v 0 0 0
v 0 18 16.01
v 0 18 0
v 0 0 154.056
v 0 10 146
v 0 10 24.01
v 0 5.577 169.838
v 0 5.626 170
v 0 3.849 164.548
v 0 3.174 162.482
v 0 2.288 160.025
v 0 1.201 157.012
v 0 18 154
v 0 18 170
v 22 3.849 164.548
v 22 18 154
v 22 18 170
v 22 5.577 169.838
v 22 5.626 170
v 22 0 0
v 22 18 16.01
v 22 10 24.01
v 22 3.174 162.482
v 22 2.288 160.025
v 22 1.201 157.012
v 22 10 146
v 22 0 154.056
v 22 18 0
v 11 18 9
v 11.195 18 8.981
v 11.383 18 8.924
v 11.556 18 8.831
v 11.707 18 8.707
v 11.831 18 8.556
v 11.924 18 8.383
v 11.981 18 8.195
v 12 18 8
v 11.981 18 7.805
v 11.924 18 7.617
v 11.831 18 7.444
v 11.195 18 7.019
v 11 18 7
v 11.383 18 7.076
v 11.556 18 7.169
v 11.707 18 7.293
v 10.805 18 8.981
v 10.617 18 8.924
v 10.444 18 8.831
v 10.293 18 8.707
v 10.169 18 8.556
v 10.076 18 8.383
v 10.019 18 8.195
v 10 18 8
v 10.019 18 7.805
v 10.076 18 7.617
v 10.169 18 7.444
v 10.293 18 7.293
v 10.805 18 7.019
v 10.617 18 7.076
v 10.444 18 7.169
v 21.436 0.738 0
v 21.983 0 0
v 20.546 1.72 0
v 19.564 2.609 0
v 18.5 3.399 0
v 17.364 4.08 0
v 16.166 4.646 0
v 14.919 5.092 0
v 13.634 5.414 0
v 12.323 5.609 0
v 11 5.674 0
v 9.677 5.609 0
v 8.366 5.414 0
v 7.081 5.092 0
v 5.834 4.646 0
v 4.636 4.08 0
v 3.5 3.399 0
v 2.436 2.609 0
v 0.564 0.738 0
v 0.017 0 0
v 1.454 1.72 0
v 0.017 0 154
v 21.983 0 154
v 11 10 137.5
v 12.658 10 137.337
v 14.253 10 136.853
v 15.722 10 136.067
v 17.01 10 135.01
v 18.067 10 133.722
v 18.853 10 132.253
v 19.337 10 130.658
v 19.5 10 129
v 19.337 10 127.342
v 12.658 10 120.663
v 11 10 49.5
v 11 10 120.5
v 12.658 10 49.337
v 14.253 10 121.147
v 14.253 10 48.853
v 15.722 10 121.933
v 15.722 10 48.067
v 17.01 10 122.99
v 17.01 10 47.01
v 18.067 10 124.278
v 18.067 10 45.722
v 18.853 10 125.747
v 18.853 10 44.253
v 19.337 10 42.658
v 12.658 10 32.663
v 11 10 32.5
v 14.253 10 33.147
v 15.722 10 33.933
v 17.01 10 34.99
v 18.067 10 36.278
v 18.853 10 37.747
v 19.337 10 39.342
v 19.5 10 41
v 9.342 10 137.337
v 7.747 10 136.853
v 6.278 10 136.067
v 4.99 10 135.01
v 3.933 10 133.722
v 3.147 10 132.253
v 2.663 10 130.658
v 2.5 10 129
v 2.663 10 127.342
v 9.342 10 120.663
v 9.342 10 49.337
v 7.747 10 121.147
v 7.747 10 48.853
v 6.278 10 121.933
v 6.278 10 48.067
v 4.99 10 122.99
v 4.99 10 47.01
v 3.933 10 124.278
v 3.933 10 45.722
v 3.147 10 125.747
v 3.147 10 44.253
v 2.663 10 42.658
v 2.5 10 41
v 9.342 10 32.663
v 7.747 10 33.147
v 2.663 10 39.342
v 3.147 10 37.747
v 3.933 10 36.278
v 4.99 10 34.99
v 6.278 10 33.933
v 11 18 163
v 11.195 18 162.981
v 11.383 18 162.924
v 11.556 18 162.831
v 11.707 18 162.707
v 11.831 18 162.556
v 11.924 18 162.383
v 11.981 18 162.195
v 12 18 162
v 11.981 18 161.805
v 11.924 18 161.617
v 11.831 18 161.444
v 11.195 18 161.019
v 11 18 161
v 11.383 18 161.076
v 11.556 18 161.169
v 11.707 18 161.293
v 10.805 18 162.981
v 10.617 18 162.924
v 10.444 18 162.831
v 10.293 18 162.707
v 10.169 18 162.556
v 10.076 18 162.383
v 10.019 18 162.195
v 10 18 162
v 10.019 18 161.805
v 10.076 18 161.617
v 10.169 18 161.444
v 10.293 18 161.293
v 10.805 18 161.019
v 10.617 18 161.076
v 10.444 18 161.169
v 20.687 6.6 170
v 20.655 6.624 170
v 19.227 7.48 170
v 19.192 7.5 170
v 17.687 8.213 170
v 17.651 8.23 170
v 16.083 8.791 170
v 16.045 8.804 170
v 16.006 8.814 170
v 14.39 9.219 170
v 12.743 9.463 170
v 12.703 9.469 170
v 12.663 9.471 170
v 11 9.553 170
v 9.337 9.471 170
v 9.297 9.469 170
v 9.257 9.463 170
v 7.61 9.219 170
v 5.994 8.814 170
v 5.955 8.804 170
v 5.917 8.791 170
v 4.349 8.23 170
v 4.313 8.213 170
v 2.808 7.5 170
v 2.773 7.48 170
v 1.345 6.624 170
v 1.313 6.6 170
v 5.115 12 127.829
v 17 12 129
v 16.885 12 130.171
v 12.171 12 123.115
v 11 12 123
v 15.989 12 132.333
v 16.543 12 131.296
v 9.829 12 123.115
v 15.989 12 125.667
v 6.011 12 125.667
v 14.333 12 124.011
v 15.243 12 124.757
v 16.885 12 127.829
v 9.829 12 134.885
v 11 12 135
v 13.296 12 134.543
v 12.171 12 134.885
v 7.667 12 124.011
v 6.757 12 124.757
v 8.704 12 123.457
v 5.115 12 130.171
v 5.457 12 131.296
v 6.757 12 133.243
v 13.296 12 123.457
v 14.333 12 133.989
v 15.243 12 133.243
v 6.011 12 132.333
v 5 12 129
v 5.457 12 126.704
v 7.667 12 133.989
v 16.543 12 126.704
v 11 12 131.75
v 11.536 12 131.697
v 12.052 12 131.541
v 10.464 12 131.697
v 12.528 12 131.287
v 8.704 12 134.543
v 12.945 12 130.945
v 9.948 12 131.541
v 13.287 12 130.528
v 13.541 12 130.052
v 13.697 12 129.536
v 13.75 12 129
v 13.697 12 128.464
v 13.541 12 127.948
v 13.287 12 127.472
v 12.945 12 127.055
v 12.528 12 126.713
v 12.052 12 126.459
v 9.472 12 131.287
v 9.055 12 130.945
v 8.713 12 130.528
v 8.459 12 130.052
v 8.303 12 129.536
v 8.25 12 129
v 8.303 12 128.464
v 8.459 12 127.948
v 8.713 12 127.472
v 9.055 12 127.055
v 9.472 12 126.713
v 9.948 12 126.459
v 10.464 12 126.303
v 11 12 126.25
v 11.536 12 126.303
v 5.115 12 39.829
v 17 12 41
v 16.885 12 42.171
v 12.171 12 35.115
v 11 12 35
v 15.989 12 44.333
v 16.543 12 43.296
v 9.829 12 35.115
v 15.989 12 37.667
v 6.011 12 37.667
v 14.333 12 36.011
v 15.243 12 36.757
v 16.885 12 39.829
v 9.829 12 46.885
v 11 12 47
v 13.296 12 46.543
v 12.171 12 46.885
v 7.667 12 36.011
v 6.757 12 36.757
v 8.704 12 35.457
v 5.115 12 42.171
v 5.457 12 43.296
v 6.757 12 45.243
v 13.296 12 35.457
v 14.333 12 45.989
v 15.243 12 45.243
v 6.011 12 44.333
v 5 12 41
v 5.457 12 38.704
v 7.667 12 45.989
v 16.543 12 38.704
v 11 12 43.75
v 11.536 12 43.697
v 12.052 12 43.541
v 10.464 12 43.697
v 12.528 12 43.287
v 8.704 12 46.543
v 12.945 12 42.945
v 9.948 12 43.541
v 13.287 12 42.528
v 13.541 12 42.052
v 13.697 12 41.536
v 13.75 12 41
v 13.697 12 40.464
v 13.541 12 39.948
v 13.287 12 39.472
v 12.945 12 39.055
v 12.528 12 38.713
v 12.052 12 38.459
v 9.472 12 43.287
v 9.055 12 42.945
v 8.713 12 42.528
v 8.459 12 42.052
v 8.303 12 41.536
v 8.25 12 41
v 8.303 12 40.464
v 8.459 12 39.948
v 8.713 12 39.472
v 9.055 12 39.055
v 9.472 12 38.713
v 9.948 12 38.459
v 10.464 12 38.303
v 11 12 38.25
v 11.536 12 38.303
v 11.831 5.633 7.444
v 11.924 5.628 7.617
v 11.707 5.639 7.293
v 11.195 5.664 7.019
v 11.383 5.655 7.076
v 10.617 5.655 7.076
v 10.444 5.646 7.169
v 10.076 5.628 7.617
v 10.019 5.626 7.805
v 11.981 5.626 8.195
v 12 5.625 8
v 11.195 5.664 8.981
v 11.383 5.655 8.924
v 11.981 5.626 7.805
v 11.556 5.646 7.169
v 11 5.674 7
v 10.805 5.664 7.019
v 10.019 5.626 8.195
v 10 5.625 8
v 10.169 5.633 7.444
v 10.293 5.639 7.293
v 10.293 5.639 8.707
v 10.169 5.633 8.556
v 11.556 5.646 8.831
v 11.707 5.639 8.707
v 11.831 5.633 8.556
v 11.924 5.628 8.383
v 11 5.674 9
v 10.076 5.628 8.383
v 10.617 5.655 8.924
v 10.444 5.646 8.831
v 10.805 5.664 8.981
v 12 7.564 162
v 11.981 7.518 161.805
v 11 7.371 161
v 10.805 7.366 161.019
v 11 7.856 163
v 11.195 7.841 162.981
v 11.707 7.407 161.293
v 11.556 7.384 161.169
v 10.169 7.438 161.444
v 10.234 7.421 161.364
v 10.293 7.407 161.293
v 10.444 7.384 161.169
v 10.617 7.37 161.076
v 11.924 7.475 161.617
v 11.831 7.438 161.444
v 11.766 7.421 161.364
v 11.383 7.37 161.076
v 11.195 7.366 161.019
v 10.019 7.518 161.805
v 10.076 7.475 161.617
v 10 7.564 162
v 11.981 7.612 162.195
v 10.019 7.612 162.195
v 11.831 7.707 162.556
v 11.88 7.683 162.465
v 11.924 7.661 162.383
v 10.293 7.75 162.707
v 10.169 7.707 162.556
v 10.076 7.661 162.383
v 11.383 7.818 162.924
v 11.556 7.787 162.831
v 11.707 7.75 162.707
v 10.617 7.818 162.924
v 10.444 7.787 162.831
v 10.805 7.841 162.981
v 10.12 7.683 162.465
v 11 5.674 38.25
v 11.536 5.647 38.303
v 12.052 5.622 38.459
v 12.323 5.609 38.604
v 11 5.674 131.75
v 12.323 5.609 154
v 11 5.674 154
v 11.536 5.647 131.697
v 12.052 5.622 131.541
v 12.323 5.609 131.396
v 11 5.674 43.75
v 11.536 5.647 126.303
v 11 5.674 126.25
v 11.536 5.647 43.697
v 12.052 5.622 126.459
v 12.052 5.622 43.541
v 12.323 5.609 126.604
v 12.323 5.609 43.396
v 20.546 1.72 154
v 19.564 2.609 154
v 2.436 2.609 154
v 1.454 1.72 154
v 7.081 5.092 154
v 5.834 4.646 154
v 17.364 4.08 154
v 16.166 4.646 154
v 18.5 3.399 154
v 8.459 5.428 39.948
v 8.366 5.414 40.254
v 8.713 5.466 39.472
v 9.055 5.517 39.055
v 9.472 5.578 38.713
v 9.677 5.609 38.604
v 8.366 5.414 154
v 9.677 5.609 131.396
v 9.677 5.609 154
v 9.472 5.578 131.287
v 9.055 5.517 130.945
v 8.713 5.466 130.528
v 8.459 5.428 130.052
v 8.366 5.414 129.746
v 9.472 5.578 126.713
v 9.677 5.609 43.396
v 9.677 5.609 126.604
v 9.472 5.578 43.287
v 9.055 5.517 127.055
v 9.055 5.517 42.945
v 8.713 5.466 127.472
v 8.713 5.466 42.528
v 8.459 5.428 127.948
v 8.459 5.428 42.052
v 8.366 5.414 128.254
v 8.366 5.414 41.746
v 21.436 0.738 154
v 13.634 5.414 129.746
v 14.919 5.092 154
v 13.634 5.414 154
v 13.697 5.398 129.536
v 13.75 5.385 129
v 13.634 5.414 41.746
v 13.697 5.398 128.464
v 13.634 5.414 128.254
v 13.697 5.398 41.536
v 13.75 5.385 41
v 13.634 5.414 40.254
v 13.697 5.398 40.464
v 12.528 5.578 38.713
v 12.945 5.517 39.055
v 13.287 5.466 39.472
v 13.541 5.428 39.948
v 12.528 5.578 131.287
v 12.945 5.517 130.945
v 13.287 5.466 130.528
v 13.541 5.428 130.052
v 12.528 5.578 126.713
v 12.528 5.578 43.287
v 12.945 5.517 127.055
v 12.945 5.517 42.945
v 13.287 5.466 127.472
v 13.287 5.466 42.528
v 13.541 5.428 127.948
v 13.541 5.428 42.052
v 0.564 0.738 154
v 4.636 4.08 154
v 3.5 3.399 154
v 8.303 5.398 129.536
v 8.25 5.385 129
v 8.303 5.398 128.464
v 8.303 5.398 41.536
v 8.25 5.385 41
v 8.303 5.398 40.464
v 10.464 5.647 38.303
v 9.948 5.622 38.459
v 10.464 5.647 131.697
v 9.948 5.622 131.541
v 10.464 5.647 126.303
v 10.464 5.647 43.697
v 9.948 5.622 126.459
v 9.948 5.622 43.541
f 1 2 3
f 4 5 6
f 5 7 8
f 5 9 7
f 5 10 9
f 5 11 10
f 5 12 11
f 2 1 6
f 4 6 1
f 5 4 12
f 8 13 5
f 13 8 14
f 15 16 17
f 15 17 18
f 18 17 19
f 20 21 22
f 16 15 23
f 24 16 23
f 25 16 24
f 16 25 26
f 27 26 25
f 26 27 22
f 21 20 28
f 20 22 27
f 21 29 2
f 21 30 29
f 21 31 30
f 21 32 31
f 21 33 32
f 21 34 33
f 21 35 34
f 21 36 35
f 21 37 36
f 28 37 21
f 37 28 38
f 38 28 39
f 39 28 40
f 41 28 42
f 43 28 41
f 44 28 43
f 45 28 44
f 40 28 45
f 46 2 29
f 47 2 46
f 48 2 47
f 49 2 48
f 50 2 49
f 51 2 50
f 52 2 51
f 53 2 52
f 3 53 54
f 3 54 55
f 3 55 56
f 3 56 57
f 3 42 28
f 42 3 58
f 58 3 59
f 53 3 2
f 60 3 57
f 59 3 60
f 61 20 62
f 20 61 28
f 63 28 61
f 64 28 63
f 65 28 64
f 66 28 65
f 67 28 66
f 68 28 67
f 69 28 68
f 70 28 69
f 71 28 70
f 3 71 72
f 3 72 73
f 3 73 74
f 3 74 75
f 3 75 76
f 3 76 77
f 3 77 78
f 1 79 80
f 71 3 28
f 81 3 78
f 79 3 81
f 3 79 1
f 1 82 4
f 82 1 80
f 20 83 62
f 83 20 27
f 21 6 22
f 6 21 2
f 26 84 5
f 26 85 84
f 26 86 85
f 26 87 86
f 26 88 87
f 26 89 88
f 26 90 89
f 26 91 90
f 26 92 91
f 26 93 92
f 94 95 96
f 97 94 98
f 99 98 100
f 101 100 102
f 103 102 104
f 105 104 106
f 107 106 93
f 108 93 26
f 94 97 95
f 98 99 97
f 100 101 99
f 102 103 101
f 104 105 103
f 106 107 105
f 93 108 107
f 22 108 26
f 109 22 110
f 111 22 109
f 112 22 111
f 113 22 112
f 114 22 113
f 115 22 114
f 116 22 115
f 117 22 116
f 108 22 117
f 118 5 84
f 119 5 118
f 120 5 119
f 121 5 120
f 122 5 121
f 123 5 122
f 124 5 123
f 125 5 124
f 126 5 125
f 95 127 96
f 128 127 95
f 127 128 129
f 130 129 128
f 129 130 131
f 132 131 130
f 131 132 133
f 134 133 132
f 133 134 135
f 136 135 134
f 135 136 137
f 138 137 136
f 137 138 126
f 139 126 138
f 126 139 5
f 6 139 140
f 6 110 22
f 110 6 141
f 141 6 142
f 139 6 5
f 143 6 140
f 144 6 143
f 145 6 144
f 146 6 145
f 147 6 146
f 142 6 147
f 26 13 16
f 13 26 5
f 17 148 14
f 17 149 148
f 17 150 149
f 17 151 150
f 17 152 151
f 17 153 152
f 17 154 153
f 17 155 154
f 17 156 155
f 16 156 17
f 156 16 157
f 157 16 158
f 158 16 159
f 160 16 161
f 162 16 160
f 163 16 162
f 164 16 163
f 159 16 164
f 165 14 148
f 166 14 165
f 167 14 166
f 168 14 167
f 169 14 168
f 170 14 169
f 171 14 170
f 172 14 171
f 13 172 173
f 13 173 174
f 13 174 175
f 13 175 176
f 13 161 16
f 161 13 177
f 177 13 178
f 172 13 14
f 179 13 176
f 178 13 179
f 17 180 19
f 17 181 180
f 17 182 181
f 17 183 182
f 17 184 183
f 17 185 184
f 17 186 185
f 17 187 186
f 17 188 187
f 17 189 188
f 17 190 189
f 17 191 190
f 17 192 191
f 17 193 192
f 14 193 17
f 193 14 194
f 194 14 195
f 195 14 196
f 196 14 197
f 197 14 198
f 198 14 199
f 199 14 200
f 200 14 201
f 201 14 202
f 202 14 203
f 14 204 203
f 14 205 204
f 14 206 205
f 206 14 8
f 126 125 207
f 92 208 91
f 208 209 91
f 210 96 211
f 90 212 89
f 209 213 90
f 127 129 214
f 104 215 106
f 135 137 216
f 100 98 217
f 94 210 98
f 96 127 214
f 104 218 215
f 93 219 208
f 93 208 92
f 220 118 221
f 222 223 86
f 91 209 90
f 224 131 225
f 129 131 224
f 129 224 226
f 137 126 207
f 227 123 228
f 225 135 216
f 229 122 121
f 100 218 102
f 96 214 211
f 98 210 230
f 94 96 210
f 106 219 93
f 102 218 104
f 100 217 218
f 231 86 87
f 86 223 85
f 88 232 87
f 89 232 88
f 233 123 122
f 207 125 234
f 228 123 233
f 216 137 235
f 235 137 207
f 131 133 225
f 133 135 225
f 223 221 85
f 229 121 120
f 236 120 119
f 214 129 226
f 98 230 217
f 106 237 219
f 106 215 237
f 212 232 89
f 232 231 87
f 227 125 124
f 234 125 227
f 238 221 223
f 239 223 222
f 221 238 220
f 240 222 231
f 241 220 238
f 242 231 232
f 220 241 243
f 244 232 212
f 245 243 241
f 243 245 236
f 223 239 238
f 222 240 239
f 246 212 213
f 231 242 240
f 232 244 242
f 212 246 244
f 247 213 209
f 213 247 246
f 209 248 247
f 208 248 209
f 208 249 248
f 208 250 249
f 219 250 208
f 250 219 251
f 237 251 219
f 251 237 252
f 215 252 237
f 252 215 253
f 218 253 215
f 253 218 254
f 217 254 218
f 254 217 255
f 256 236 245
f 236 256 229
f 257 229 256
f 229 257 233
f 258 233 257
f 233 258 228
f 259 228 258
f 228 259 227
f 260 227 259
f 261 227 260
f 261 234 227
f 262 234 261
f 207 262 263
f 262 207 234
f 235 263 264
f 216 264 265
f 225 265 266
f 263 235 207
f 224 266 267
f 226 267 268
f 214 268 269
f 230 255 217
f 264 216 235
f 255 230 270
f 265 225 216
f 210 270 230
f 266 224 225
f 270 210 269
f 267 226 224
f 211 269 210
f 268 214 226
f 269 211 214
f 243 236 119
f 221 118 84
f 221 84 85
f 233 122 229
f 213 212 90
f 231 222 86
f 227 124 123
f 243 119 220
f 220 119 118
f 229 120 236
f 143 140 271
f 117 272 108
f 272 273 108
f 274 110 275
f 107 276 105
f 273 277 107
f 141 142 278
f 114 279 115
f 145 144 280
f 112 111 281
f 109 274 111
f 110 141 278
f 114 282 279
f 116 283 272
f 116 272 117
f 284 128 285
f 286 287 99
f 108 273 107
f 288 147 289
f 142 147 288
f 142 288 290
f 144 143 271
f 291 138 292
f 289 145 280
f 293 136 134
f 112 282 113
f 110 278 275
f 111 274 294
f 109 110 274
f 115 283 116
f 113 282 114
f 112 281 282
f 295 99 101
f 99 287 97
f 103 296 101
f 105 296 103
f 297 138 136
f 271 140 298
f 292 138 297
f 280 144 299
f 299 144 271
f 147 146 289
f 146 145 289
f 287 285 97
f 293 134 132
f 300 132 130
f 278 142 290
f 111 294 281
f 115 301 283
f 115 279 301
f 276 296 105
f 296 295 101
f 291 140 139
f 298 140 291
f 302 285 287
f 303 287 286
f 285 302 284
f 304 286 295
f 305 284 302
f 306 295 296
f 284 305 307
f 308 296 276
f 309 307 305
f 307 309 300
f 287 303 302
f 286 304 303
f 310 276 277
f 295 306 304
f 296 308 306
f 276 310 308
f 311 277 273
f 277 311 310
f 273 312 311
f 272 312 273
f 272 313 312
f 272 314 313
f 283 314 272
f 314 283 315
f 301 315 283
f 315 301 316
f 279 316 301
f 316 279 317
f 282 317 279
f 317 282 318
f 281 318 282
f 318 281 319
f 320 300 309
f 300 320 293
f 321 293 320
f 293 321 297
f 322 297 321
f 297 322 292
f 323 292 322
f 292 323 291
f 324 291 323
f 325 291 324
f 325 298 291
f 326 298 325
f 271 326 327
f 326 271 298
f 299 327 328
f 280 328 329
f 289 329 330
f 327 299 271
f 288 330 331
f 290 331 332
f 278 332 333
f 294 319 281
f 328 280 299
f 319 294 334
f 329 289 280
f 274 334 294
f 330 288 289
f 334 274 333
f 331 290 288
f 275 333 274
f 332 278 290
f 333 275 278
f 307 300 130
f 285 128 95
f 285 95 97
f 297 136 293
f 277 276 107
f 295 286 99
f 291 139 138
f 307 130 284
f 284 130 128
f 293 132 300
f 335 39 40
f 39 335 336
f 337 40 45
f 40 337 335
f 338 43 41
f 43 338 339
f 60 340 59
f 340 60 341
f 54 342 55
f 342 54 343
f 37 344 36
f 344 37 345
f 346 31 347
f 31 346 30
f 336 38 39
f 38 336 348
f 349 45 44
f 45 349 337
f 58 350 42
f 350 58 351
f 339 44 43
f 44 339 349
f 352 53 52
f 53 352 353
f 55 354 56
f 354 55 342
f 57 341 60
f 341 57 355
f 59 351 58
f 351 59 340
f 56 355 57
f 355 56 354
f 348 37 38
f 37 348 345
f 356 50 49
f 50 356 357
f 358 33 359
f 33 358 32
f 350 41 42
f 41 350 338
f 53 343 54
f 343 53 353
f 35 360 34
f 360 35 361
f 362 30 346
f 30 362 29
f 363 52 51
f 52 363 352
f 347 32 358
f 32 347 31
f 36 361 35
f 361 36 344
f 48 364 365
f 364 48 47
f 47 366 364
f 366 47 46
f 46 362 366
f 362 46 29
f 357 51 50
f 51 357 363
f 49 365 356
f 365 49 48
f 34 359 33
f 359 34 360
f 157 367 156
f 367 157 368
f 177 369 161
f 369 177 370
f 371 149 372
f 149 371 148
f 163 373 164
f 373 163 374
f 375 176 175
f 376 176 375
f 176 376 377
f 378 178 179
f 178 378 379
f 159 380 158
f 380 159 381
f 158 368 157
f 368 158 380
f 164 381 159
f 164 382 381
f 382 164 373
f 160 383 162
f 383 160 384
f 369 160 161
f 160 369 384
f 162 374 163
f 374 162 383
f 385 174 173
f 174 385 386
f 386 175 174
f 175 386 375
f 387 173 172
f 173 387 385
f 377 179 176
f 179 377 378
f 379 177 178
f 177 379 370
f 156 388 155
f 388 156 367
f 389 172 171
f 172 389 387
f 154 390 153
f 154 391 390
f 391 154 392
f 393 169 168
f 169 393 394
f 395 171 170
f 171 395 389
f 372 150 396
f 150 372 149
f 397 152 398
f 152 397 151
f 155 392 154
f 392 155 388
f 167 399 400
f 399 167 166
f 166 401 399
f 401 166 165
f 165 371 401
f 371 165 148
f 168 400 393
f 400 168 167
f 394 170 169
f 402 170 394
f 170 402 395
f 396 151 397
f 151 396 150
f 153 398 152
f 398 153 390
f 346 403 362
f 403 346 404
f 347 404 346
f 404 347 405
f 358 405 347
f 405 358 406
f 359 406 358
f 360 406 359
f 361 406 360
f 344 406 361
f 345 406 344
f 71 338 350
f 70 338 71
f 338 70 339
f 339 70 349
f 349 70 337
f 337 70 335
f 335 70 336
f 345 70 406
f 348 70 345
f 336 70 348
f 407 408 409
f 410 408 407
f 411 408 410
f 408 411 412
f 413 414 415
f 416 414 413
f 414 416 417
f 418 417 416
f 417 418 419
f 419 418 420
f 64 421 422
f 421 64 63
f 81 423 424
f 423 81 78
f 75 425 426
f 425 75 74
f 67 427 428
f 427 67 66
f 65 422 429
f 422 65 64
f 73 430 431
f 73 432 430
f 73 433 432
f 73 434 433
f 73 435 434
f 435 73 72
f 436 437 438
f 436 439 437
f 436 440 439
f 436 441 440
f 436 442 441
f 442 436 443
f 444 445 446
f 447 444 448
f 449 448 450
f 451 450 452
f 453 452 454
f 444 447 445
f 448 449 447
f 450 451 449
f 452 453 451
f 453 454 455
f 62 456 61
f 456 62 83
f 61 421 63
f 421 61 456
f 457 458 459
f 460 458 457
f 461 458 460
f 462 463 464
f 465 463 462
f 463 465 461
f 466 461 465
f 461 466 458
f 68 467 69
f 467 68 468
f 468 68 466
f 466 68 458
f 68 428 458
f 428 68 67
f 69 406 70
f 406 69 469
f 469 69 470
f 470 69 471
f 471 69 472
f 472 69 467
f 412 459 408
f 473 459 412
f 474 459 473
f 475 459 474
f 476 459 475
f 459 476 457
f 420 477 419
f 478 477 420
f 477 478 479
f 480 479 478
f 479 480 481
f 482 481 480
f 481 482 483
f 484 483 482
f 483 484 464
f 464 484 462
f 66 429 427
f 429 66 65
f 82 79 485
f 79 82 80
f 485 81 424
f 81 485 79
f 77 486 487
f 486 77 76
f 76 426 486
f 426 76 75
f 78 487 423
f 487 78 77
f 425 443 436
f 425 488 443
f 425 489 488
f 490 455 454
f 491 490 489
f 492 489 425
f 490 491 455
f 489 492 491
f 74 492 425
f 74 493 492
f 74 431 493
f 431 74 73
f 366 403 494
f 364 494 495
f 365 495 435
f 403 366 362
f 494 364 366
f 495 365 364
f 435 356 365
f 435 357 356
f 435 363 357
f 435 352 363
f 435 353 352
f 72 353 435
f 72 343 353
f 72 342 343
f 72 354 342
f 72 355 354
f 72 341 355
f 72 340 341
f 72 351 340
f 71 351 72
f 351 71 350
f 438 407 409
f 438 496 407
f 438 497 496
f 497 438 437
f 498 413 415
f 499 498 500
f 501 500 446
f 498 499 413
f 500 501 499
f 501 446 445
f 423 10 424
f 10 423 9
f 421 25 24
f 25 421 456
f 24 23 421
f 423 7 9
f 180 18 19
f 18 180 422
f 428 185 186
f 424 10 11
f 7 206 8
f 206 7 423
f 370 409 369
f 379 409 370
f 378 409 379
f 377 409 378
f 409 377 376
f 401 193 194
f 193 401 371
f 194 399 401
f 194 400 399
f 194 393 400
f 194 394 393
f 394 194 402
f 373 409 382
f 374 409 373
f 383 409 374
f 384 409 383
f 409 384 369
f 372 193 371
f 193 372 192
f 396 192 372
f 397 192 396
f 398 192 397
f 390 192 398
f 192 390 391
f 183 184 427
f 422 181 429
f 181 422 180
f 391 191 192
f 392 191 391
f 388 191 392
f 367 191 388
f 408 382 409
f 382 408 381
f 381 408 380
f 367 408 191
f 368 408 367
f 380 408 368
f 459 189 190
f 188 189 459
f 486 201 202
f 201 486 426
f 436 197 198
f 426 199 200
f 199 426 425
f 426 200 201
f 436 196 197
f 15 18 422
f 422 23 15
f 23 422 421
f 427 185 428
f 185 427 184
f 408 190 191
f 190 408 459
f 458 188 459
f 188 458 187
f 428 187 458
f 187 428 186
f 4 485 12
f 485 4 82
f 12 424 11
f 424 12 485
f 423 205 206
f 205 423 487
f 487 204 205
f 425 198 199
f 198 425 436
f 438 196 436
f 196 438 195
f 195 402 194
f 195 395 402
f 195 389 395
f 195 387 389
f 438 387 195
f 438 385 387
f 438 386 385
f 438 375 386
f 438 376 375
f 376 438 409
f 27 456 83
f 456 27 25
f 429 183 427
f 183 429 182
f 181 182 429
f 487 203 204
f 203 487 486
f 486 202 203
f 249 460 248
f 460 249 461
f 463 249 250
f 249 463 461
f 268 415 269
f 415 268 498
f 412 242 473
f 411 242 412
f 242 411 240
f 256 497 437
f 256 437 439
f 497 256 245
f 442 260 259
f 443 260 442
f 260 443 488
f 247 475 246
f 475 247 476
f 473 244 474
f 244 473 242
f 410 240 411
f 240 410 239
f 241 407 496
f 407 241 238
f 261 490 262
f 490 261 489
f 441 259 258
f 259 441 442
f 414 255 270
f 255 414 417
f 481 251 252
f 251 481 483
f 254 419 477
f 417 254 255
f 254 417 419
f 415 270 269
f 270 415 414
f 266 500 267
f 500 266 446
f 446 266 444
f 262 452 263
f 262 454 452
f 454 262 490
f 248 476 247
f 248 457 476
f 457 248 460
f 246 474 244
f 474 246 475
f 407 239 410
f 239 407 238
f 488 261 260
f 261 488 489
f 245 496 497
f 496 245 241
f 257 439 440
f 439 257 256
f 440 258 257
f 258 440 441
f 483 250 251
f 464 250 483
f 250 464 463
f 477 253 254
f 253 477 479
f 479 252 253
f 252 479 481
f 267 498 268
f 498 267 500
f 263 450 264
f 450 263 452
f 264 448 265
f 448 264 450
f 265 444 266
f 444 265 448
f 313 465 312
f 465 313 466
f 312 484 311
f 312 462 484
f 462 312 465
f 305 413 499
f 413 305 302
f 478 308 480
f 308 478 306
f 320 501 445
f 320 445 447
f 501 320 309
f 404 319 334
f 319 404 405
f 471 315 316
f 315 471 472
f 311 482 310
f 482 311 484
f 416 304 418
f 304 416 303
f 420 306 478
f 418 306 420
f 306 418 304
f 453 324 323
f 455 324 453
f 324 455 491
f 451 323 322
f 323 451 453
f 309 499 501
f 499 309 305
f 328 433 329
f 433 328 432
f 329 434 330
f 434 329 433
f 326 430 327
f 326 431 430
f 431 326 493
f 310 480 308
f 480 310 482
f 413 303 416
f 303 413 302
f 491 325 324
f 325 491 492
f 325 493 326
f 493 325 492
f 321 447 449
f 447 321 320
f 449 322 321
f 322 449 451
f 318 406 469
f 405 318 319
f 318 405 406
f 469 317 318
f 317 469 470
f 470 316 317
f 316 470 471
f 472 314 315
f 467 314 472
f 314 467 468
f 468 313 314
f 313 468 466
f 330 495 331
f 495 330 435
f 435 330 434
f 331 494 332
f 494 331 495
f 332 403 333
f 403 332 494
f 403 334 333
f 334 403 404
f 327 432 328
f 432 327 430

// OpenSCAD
// Adapter pomiędzy tabliczką a słupkiem
// Szerokość i przekrój jak element mocujący w cassette_lid.scad

adapter_width  = 22;    // mount_width z cassette_lid.scad
adapter_depth  = 10;    // mount_depth z cassette_lid.scad
adapter_height = 170;   // taka sama jak tabliczka

// Wklęsłość ściany (y=0) — parametry z cassette_lid.scad
concave_r     = 13.5; // mount_concave_r
concave_r_top = concave_r + 4; // poszerzony promień w górnej strefie
// oś walca leży za ścianą y=0 tak, by cylinder dokładnie zahaczył o obie krawędzie (x=0 i x=22)
dish_axis_y = -sqrt(concave_r*concave_r - (adapter_width/2)*(adapter_width/2));

// Otwory 2mm wyrównane z otworami montażowymi tabliczki
hole_d            = 2;
screw_edge_margin = 8;
hole_x            = adapter_width / 2;
hole_z_bottom     = screw_edge_margin;
hole_z_top        = adapter_height - screw_edge_margin;

// Uszy — pogrubienie w +Y przy otworach (płynne przejście)
ear_extra_depth = 8;
ear_depth       = adapter_depth + ear_extra_depth; // 18 mm

// Otwory montażowe i wysepki (z cassette_lid.scad, element mocujący)
mount_hole_d      = 5.5;  // mount_hole_d
mount_boss_r      = 6;    // mount_inner_boss_r
mount_boss_base_r = 8.5;  // mount_inner_boss_base_r
mount_boss_len    = 2;    // mount_inner_boss_len
mount_hole_offset = 41; // odsunięcie od końca adaptera
mount_hole_z1 = adapter_height - mount_hole_offset;  // 129 mm od dołu
mount_hole_z2 = mount_hole_offset;                   //  41 mm od dołu (symetrycznie)

// Wysepka wzmacniająca — wychodzi z tylnej płaskiej ściany (y=adapter_depth) w +y
// rotate([90,0,0]) obraca oś z → −y, więc cylinder idzie od y=adapter_depth do y=adapter_depth+len
module mount_boss(z_pos) {
    translate([adapter_width/2, adapter_depth + mount_boss_len, z_pos])
        rotate([90, 0, 0])
            cylinder(h = mount_boss_len, r1 = mount_boss_r, r2 = mount_boss_base_r, $fn = 32);
}

// Otwór montażowy — przelotowy przez wysepkę i cały adapter
module mount_screw_hole(z_pos) {
    translate([adapter_width/2, adapter_depth + mount_boss_len + 0.5, z_pos])
        rotate([90, 0, 0])
            cylinder(h = adapter_depth + mount_boss_len + 1, r = mount_hole_d / 2, $fn = 32);
}

difference() {
    union() {
        // Dolne ucho (płaskie)
        cube([adapter_width, ear_depth, 2 * screw_edge_margin]);

        // Przejście dolne
        hull() {
            translate([0, 0, 2 * screw_edge_margin])
                cube([adapter_width, ear_depth, 0.01]);
            translate([0, 0, 3 * screw_edge_margin])
                cube([adapter_width, adapter_depth, 0.01]);
        }

        // Środkowa część
        translate([0, 0, 3 * screw_edge_margin])
            cube([adapter_width, adapter_depth, adapter_height - 6 * screw_edge_margin]);

        // Przejście górne
        hull() {
            translate([0, 0, adapter_height - 3 * screw_edge_margin])
                cube([adapter_width, adapter_depth, 0.01]);
            translate([0, 0, adapter_height - 2 * screw_edge_margin])
                cube([adapter_width, ear_depth, 0.01]);
        }

        // Górne ucho (płaskie)
        translate([0, 0, adapter_height - 2 * screw_edge_margin])
            cube([adapter_width, ear_depth, 2 * screw_edge_margin]);

        // Wysepki wzmacniające
        mount_boss(mount_hole_z1);
        mount_boss(mount_hole_z2);
    }

    // Wklęsłość na ścianie y=0 (pełna wysokość)
    translate([adapter_width/2, dish_axis_y, -0.5])
        cylinder(h = adapter_height + 1, r = concave_r, $fn = 64);

    // Poszerzenie wklęsłości w górnych 2*screw_edge_margin mm
    translate([adapter_width/2, dish_axis_y, adapter_height - 2 * screw_edge_margin])
        cylinder(h = 2 * screw_edge_margin + 0.5, r1 = concave_r, r2 = concave_r_top, $fn = 64);

    // Otwory 2mm przez pełną głębokość ucha
    for (z = [hole_z_bottom, hole_z_top]) {
        translate([hole_x, -0.5, z])
            rotate([-90, 0, 0])
                cylinder(h = ear_depth + 1, r = hole_d / 2, $fn = 32);
    }

    // Otwory montażowe (przez wysepki i adapter)
    mount_screw_hole(mount_hole_z1);
    mount_screw_hole(mount_hole_z2);
}
